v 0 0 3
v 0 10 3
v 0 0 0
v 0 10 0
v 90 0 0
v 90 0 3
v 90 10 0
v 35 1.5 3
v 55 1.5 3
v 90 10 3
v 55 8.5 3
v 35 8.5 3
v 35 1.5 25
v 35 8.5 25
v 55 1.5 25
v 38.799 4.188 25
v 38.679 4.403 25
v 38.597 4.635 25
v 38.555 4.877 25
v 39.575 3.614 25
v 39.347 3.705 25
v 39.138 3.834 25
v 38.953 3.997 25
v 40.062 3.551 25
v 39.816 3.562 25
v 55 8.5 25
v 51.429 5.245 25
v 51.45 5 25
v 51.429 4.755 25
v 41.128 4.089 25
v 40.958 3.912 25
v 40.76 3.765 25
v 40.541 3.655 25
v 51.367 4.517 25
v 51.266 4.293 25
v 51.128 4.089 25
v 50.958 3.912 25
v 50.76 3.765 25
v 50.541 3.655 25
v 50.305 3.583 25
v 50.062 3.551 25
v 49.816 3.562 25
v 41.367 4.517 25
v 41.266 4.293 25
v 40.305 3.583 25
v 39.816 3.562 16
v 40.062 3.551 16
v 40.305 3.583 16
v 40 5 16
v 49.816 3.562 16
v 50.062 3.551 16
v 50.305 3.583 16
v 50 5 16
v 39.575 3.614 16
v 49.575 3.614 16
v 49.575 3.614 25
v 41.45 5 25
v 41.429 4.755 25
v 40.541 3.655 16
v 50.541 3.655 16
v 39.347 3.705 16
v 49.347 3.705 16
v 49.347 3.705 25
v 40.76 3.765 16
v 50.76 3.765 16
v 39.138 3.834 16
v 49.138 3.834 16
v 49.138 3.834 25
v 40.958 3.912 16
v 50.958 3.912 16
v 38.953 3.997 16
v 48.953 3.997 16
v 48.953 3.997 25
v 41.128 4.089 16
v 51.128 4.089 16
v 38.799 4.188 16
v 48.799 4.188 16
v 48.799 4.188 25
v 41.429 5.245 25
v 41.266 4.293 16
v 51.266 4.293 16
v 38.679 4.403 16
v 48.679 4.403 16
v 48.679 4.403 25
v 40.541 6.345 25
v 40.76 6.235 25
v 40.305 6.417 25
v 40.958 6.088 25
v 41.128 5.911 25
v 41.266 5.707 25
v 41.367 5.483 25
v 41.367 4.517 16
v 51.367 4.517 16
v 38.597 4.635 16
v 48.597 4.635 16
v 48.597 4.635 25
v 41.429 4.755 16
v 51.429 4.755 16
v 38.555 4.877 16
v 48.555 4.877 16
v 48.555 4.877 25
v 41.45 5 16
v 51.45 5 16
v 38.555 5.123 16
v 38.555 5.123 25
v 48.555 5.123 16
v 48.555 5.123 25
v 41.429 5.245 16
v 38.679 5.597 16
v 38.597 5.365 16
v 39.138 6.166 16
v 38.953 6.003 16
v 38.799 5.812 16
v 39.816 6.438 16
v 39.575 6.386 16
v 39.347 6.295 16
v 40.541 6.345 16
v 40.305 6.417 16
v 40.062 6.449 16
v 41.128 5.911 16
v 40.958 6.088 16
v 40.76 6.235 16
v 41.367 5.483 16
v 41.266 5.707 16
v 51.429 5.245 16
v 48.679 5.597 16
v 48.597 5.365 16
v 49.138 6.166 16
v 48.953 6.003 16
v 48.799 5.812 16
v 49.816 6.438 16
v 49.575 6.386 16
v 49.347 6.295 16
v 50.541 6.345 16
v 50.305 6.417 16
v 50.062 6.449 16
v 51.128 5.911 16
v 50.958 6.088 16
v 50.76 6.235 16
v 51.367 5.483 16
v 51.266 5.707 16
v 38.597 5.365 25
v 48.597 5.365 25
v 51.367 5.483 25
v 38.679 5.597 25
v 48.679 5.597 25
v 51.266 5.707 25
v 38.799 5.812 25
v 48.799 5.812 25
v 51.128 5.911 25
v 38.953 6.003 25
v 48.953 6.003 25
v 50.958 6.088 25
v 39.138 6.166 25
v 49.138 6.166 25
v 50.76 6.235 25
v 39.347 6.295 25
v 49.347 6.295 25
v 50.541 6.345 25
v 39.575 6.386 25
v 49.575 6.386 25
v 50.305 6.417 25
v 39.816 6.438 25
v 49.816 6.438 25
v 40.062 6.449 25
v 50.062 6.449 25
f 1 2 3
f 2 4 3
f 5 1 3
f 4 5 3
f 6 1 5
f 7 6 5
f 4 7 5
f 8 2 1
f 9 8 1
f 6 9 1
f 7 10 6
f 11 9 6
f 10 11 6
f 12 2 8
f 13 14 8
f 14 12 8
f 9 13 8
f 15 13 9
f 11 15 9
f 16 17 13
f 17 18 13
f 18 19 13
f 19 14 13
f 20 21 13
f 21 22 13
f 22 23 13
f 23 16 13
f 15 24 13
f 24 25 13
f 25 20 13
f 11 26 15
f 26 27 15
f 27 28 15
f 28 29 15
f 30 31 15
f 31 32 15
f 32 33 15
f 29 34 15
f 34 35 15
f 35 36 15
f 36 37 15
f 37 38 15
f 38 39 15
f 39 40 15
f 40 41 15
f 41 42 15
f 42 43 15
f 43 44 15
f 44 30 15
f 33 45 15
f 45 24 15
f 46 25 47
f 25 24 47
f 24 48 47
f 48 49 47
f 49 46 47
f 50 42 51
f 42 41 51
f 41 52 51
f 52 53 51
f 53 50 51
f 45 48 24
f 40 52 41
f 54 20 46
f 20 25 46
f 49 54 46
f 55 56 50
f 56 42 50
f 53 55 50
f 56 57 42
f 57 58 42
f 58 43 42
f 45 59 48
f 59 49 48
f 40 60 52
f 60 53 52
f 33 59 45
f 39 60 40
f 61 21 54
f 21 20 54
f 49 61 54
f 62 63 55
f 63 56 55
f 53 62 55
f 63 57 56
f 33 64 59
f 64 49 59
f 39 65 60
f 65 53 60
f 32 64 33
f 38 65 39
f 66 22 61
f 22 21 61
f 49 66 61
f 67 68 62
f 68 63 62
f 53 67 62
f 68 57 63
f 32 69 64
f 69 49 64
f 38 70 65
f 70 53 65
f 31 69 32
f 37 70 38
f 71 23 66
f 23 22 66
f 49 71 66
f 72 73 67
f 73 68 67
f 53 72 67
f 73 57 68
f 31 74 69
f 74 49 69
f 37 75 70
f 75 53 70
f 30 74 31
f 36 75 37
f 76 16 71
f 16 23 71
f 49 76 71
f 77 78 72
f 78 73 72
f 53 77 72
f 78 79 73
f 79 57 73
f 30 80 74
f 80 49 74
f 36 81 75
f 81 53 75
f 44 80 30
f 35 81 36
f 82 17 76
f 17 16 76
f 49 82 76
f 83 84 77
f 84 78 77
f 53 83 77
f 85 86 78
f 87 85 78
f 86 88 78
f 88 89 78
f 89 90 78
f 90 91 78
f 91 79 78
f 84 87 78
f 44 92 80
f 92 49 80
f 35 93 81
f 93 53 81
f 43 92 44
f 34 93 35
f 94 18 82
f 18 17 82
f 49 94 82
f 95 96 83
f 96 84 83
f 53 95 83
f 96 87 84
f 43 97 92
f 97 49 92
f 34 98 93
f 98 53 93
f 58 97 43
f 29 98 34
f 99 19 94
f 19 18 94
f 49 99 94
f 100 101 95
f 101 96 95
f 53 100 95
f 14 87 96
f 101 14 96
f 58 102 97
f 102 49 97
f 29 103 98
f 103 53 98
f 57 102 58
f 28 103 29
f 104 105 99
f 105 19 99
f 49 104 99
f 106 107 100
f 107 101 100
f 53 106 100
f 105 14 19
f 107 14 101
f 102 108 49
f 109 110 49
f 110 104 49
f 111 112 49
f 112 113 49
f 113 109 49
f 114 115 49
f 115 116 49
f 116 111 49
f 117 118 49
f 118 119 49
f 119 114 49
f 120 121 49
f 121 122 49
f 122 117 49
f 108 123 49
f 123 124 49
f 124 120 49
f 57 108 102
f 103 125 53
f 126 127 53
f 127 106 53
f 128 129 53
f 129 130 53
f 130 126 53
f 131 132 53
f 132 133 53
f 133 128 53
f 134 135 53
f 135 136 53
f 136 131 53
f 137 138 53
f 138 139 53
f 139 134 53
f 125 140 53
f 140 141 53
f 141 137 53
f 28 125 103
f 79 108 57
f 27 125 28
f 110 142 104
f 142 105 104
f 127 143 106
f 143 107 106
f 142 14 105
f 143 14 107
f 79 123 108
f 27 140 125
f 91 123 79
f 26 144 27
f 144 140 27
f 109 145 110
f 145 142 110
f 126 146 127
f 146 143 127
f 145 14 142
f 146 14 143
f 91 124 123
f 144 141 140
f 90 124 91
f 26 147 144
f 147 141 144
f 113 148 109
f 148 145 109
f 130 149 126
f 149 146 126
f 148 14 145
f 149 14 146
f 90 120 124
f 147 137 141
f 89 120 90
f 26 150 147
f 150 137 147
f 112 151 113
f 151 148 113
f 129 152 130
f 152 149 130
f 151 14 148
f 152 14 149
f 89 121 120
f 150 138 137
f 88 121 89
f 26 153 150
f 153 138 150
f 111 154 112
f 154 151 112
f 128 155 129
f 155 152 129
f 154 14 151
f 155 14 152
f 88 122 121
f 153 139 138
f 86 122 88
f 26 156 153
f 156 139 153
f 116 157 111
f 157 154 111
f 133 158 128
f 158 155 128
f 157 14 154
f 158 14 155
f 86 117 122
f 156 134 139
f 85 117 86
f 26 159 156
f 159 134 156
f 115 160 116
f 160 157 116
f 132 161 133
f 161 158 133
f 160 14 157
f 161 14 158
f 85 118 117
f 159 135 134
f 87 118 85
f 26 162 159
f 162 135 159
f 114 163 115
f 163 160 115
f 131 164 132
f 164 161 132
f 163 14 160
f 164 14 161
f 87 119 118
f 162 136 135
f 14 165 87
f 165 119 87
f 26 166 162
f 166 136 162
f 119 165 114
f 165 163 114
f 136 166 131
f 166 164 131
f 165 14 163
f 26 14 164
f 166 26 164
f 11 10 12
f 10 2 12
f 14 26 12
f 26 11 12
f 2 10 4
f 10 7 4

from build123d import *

# Parameters (mm, degrees)
SKETCH_1_W          = 90
SKETCH_1_H          = 10
EXTRUDE_1_DEPTH     = 3
SKETCH_2_W          = 20
SKETCH_2_H          = 7
EXTRUDE_3_DEPTH     = 22
CUT_EXTRUDE_1_DEPTH = 9


with BuildPart() as part:
    # 草图1 → 凸台-拉伸1 (new body)
    with BuildSketch(Plane.XY):
        with Locations((45, 5)):
            Rectangle(SKETCH_1_W, SKETCH_1_H)
    extrude(amount=EXTRUDE_1_DEPTH)

    # 草图2 → 凸台-拉伸3 (add)
    with BuildSketch(Plane.XY.offset(3)):
        with Locations((45, 5)):
            Rectangle(SKETCH_2_W, SKETCH_2_H)
    extrude(amount=EXTRUDE_3_DEPTH)

    # 草图4 → 切除-拉伸1 (cut)
    with BuildSketch(Plane.XY.offset(25)):
        with BuildLine():
            ThreePointArc((48.55, 5), (50, 3.55), (51.45, 5))
            Line((51.45, 5), (50, 5))
            Line((50, 5), (48.55, 5))
        make_face()
        with BuildLine():
            Line((50, 5), (51.45, 5))
            ThreePointArc((51.45, 5), (50, 6.45), (48.55, 5))
            Line((48.55, 5), (50, 5))
        make_face()
        with BuildLine():
            ThreePointArc((48.55, 5), (50, 3.55), (51.45, 5))
            Line((51.45, 5), (50, 5))
            Line((50, 5), (48.55, 5))
        make_face()
        with BuildLine():
            Line((50, 5), (51.45, 5))
            ThreePointArc((51.45, 5), (50, 6.45), (48.55, 5))
            Line((48.55, 5), (50, 5))
        make_face()
        with BuildLine():
            ThreePointArc((38.55, 5), (40, 3.55), (41.45, 5))
            Line((41.45, 5), (40, 5))
            Line((40, 5), (38.55, 5))
        make_face()
        with BuildLine():
            Line((40, 5), (41.45, 5))
            ThreePointArc((41.45, 5), (40, 6.45), (38.55, 5))
            Line((38.55, 5), (40, 5))
        make_face()
        with BuildLine():
            ThreePointArc((38.55, 5), (40, 3.55), (41.45, 5))
            Line((41.45, 5), (40, 5))
            Line((40, 5), (38.55, 5))
        make_face()
        with BuildLine():
            Line((40, 5), (41.45, 5))
            ThreePointArc((41.45, 5), (40, 6.45), (38.55, 5))
            Line((38.55, 5), (40, 5))
        make_face()
    extrude(amount=-CUT_EXTRUDE_1_DEPTH, mode=Mode.SUBTRACT)


solid = part.part
